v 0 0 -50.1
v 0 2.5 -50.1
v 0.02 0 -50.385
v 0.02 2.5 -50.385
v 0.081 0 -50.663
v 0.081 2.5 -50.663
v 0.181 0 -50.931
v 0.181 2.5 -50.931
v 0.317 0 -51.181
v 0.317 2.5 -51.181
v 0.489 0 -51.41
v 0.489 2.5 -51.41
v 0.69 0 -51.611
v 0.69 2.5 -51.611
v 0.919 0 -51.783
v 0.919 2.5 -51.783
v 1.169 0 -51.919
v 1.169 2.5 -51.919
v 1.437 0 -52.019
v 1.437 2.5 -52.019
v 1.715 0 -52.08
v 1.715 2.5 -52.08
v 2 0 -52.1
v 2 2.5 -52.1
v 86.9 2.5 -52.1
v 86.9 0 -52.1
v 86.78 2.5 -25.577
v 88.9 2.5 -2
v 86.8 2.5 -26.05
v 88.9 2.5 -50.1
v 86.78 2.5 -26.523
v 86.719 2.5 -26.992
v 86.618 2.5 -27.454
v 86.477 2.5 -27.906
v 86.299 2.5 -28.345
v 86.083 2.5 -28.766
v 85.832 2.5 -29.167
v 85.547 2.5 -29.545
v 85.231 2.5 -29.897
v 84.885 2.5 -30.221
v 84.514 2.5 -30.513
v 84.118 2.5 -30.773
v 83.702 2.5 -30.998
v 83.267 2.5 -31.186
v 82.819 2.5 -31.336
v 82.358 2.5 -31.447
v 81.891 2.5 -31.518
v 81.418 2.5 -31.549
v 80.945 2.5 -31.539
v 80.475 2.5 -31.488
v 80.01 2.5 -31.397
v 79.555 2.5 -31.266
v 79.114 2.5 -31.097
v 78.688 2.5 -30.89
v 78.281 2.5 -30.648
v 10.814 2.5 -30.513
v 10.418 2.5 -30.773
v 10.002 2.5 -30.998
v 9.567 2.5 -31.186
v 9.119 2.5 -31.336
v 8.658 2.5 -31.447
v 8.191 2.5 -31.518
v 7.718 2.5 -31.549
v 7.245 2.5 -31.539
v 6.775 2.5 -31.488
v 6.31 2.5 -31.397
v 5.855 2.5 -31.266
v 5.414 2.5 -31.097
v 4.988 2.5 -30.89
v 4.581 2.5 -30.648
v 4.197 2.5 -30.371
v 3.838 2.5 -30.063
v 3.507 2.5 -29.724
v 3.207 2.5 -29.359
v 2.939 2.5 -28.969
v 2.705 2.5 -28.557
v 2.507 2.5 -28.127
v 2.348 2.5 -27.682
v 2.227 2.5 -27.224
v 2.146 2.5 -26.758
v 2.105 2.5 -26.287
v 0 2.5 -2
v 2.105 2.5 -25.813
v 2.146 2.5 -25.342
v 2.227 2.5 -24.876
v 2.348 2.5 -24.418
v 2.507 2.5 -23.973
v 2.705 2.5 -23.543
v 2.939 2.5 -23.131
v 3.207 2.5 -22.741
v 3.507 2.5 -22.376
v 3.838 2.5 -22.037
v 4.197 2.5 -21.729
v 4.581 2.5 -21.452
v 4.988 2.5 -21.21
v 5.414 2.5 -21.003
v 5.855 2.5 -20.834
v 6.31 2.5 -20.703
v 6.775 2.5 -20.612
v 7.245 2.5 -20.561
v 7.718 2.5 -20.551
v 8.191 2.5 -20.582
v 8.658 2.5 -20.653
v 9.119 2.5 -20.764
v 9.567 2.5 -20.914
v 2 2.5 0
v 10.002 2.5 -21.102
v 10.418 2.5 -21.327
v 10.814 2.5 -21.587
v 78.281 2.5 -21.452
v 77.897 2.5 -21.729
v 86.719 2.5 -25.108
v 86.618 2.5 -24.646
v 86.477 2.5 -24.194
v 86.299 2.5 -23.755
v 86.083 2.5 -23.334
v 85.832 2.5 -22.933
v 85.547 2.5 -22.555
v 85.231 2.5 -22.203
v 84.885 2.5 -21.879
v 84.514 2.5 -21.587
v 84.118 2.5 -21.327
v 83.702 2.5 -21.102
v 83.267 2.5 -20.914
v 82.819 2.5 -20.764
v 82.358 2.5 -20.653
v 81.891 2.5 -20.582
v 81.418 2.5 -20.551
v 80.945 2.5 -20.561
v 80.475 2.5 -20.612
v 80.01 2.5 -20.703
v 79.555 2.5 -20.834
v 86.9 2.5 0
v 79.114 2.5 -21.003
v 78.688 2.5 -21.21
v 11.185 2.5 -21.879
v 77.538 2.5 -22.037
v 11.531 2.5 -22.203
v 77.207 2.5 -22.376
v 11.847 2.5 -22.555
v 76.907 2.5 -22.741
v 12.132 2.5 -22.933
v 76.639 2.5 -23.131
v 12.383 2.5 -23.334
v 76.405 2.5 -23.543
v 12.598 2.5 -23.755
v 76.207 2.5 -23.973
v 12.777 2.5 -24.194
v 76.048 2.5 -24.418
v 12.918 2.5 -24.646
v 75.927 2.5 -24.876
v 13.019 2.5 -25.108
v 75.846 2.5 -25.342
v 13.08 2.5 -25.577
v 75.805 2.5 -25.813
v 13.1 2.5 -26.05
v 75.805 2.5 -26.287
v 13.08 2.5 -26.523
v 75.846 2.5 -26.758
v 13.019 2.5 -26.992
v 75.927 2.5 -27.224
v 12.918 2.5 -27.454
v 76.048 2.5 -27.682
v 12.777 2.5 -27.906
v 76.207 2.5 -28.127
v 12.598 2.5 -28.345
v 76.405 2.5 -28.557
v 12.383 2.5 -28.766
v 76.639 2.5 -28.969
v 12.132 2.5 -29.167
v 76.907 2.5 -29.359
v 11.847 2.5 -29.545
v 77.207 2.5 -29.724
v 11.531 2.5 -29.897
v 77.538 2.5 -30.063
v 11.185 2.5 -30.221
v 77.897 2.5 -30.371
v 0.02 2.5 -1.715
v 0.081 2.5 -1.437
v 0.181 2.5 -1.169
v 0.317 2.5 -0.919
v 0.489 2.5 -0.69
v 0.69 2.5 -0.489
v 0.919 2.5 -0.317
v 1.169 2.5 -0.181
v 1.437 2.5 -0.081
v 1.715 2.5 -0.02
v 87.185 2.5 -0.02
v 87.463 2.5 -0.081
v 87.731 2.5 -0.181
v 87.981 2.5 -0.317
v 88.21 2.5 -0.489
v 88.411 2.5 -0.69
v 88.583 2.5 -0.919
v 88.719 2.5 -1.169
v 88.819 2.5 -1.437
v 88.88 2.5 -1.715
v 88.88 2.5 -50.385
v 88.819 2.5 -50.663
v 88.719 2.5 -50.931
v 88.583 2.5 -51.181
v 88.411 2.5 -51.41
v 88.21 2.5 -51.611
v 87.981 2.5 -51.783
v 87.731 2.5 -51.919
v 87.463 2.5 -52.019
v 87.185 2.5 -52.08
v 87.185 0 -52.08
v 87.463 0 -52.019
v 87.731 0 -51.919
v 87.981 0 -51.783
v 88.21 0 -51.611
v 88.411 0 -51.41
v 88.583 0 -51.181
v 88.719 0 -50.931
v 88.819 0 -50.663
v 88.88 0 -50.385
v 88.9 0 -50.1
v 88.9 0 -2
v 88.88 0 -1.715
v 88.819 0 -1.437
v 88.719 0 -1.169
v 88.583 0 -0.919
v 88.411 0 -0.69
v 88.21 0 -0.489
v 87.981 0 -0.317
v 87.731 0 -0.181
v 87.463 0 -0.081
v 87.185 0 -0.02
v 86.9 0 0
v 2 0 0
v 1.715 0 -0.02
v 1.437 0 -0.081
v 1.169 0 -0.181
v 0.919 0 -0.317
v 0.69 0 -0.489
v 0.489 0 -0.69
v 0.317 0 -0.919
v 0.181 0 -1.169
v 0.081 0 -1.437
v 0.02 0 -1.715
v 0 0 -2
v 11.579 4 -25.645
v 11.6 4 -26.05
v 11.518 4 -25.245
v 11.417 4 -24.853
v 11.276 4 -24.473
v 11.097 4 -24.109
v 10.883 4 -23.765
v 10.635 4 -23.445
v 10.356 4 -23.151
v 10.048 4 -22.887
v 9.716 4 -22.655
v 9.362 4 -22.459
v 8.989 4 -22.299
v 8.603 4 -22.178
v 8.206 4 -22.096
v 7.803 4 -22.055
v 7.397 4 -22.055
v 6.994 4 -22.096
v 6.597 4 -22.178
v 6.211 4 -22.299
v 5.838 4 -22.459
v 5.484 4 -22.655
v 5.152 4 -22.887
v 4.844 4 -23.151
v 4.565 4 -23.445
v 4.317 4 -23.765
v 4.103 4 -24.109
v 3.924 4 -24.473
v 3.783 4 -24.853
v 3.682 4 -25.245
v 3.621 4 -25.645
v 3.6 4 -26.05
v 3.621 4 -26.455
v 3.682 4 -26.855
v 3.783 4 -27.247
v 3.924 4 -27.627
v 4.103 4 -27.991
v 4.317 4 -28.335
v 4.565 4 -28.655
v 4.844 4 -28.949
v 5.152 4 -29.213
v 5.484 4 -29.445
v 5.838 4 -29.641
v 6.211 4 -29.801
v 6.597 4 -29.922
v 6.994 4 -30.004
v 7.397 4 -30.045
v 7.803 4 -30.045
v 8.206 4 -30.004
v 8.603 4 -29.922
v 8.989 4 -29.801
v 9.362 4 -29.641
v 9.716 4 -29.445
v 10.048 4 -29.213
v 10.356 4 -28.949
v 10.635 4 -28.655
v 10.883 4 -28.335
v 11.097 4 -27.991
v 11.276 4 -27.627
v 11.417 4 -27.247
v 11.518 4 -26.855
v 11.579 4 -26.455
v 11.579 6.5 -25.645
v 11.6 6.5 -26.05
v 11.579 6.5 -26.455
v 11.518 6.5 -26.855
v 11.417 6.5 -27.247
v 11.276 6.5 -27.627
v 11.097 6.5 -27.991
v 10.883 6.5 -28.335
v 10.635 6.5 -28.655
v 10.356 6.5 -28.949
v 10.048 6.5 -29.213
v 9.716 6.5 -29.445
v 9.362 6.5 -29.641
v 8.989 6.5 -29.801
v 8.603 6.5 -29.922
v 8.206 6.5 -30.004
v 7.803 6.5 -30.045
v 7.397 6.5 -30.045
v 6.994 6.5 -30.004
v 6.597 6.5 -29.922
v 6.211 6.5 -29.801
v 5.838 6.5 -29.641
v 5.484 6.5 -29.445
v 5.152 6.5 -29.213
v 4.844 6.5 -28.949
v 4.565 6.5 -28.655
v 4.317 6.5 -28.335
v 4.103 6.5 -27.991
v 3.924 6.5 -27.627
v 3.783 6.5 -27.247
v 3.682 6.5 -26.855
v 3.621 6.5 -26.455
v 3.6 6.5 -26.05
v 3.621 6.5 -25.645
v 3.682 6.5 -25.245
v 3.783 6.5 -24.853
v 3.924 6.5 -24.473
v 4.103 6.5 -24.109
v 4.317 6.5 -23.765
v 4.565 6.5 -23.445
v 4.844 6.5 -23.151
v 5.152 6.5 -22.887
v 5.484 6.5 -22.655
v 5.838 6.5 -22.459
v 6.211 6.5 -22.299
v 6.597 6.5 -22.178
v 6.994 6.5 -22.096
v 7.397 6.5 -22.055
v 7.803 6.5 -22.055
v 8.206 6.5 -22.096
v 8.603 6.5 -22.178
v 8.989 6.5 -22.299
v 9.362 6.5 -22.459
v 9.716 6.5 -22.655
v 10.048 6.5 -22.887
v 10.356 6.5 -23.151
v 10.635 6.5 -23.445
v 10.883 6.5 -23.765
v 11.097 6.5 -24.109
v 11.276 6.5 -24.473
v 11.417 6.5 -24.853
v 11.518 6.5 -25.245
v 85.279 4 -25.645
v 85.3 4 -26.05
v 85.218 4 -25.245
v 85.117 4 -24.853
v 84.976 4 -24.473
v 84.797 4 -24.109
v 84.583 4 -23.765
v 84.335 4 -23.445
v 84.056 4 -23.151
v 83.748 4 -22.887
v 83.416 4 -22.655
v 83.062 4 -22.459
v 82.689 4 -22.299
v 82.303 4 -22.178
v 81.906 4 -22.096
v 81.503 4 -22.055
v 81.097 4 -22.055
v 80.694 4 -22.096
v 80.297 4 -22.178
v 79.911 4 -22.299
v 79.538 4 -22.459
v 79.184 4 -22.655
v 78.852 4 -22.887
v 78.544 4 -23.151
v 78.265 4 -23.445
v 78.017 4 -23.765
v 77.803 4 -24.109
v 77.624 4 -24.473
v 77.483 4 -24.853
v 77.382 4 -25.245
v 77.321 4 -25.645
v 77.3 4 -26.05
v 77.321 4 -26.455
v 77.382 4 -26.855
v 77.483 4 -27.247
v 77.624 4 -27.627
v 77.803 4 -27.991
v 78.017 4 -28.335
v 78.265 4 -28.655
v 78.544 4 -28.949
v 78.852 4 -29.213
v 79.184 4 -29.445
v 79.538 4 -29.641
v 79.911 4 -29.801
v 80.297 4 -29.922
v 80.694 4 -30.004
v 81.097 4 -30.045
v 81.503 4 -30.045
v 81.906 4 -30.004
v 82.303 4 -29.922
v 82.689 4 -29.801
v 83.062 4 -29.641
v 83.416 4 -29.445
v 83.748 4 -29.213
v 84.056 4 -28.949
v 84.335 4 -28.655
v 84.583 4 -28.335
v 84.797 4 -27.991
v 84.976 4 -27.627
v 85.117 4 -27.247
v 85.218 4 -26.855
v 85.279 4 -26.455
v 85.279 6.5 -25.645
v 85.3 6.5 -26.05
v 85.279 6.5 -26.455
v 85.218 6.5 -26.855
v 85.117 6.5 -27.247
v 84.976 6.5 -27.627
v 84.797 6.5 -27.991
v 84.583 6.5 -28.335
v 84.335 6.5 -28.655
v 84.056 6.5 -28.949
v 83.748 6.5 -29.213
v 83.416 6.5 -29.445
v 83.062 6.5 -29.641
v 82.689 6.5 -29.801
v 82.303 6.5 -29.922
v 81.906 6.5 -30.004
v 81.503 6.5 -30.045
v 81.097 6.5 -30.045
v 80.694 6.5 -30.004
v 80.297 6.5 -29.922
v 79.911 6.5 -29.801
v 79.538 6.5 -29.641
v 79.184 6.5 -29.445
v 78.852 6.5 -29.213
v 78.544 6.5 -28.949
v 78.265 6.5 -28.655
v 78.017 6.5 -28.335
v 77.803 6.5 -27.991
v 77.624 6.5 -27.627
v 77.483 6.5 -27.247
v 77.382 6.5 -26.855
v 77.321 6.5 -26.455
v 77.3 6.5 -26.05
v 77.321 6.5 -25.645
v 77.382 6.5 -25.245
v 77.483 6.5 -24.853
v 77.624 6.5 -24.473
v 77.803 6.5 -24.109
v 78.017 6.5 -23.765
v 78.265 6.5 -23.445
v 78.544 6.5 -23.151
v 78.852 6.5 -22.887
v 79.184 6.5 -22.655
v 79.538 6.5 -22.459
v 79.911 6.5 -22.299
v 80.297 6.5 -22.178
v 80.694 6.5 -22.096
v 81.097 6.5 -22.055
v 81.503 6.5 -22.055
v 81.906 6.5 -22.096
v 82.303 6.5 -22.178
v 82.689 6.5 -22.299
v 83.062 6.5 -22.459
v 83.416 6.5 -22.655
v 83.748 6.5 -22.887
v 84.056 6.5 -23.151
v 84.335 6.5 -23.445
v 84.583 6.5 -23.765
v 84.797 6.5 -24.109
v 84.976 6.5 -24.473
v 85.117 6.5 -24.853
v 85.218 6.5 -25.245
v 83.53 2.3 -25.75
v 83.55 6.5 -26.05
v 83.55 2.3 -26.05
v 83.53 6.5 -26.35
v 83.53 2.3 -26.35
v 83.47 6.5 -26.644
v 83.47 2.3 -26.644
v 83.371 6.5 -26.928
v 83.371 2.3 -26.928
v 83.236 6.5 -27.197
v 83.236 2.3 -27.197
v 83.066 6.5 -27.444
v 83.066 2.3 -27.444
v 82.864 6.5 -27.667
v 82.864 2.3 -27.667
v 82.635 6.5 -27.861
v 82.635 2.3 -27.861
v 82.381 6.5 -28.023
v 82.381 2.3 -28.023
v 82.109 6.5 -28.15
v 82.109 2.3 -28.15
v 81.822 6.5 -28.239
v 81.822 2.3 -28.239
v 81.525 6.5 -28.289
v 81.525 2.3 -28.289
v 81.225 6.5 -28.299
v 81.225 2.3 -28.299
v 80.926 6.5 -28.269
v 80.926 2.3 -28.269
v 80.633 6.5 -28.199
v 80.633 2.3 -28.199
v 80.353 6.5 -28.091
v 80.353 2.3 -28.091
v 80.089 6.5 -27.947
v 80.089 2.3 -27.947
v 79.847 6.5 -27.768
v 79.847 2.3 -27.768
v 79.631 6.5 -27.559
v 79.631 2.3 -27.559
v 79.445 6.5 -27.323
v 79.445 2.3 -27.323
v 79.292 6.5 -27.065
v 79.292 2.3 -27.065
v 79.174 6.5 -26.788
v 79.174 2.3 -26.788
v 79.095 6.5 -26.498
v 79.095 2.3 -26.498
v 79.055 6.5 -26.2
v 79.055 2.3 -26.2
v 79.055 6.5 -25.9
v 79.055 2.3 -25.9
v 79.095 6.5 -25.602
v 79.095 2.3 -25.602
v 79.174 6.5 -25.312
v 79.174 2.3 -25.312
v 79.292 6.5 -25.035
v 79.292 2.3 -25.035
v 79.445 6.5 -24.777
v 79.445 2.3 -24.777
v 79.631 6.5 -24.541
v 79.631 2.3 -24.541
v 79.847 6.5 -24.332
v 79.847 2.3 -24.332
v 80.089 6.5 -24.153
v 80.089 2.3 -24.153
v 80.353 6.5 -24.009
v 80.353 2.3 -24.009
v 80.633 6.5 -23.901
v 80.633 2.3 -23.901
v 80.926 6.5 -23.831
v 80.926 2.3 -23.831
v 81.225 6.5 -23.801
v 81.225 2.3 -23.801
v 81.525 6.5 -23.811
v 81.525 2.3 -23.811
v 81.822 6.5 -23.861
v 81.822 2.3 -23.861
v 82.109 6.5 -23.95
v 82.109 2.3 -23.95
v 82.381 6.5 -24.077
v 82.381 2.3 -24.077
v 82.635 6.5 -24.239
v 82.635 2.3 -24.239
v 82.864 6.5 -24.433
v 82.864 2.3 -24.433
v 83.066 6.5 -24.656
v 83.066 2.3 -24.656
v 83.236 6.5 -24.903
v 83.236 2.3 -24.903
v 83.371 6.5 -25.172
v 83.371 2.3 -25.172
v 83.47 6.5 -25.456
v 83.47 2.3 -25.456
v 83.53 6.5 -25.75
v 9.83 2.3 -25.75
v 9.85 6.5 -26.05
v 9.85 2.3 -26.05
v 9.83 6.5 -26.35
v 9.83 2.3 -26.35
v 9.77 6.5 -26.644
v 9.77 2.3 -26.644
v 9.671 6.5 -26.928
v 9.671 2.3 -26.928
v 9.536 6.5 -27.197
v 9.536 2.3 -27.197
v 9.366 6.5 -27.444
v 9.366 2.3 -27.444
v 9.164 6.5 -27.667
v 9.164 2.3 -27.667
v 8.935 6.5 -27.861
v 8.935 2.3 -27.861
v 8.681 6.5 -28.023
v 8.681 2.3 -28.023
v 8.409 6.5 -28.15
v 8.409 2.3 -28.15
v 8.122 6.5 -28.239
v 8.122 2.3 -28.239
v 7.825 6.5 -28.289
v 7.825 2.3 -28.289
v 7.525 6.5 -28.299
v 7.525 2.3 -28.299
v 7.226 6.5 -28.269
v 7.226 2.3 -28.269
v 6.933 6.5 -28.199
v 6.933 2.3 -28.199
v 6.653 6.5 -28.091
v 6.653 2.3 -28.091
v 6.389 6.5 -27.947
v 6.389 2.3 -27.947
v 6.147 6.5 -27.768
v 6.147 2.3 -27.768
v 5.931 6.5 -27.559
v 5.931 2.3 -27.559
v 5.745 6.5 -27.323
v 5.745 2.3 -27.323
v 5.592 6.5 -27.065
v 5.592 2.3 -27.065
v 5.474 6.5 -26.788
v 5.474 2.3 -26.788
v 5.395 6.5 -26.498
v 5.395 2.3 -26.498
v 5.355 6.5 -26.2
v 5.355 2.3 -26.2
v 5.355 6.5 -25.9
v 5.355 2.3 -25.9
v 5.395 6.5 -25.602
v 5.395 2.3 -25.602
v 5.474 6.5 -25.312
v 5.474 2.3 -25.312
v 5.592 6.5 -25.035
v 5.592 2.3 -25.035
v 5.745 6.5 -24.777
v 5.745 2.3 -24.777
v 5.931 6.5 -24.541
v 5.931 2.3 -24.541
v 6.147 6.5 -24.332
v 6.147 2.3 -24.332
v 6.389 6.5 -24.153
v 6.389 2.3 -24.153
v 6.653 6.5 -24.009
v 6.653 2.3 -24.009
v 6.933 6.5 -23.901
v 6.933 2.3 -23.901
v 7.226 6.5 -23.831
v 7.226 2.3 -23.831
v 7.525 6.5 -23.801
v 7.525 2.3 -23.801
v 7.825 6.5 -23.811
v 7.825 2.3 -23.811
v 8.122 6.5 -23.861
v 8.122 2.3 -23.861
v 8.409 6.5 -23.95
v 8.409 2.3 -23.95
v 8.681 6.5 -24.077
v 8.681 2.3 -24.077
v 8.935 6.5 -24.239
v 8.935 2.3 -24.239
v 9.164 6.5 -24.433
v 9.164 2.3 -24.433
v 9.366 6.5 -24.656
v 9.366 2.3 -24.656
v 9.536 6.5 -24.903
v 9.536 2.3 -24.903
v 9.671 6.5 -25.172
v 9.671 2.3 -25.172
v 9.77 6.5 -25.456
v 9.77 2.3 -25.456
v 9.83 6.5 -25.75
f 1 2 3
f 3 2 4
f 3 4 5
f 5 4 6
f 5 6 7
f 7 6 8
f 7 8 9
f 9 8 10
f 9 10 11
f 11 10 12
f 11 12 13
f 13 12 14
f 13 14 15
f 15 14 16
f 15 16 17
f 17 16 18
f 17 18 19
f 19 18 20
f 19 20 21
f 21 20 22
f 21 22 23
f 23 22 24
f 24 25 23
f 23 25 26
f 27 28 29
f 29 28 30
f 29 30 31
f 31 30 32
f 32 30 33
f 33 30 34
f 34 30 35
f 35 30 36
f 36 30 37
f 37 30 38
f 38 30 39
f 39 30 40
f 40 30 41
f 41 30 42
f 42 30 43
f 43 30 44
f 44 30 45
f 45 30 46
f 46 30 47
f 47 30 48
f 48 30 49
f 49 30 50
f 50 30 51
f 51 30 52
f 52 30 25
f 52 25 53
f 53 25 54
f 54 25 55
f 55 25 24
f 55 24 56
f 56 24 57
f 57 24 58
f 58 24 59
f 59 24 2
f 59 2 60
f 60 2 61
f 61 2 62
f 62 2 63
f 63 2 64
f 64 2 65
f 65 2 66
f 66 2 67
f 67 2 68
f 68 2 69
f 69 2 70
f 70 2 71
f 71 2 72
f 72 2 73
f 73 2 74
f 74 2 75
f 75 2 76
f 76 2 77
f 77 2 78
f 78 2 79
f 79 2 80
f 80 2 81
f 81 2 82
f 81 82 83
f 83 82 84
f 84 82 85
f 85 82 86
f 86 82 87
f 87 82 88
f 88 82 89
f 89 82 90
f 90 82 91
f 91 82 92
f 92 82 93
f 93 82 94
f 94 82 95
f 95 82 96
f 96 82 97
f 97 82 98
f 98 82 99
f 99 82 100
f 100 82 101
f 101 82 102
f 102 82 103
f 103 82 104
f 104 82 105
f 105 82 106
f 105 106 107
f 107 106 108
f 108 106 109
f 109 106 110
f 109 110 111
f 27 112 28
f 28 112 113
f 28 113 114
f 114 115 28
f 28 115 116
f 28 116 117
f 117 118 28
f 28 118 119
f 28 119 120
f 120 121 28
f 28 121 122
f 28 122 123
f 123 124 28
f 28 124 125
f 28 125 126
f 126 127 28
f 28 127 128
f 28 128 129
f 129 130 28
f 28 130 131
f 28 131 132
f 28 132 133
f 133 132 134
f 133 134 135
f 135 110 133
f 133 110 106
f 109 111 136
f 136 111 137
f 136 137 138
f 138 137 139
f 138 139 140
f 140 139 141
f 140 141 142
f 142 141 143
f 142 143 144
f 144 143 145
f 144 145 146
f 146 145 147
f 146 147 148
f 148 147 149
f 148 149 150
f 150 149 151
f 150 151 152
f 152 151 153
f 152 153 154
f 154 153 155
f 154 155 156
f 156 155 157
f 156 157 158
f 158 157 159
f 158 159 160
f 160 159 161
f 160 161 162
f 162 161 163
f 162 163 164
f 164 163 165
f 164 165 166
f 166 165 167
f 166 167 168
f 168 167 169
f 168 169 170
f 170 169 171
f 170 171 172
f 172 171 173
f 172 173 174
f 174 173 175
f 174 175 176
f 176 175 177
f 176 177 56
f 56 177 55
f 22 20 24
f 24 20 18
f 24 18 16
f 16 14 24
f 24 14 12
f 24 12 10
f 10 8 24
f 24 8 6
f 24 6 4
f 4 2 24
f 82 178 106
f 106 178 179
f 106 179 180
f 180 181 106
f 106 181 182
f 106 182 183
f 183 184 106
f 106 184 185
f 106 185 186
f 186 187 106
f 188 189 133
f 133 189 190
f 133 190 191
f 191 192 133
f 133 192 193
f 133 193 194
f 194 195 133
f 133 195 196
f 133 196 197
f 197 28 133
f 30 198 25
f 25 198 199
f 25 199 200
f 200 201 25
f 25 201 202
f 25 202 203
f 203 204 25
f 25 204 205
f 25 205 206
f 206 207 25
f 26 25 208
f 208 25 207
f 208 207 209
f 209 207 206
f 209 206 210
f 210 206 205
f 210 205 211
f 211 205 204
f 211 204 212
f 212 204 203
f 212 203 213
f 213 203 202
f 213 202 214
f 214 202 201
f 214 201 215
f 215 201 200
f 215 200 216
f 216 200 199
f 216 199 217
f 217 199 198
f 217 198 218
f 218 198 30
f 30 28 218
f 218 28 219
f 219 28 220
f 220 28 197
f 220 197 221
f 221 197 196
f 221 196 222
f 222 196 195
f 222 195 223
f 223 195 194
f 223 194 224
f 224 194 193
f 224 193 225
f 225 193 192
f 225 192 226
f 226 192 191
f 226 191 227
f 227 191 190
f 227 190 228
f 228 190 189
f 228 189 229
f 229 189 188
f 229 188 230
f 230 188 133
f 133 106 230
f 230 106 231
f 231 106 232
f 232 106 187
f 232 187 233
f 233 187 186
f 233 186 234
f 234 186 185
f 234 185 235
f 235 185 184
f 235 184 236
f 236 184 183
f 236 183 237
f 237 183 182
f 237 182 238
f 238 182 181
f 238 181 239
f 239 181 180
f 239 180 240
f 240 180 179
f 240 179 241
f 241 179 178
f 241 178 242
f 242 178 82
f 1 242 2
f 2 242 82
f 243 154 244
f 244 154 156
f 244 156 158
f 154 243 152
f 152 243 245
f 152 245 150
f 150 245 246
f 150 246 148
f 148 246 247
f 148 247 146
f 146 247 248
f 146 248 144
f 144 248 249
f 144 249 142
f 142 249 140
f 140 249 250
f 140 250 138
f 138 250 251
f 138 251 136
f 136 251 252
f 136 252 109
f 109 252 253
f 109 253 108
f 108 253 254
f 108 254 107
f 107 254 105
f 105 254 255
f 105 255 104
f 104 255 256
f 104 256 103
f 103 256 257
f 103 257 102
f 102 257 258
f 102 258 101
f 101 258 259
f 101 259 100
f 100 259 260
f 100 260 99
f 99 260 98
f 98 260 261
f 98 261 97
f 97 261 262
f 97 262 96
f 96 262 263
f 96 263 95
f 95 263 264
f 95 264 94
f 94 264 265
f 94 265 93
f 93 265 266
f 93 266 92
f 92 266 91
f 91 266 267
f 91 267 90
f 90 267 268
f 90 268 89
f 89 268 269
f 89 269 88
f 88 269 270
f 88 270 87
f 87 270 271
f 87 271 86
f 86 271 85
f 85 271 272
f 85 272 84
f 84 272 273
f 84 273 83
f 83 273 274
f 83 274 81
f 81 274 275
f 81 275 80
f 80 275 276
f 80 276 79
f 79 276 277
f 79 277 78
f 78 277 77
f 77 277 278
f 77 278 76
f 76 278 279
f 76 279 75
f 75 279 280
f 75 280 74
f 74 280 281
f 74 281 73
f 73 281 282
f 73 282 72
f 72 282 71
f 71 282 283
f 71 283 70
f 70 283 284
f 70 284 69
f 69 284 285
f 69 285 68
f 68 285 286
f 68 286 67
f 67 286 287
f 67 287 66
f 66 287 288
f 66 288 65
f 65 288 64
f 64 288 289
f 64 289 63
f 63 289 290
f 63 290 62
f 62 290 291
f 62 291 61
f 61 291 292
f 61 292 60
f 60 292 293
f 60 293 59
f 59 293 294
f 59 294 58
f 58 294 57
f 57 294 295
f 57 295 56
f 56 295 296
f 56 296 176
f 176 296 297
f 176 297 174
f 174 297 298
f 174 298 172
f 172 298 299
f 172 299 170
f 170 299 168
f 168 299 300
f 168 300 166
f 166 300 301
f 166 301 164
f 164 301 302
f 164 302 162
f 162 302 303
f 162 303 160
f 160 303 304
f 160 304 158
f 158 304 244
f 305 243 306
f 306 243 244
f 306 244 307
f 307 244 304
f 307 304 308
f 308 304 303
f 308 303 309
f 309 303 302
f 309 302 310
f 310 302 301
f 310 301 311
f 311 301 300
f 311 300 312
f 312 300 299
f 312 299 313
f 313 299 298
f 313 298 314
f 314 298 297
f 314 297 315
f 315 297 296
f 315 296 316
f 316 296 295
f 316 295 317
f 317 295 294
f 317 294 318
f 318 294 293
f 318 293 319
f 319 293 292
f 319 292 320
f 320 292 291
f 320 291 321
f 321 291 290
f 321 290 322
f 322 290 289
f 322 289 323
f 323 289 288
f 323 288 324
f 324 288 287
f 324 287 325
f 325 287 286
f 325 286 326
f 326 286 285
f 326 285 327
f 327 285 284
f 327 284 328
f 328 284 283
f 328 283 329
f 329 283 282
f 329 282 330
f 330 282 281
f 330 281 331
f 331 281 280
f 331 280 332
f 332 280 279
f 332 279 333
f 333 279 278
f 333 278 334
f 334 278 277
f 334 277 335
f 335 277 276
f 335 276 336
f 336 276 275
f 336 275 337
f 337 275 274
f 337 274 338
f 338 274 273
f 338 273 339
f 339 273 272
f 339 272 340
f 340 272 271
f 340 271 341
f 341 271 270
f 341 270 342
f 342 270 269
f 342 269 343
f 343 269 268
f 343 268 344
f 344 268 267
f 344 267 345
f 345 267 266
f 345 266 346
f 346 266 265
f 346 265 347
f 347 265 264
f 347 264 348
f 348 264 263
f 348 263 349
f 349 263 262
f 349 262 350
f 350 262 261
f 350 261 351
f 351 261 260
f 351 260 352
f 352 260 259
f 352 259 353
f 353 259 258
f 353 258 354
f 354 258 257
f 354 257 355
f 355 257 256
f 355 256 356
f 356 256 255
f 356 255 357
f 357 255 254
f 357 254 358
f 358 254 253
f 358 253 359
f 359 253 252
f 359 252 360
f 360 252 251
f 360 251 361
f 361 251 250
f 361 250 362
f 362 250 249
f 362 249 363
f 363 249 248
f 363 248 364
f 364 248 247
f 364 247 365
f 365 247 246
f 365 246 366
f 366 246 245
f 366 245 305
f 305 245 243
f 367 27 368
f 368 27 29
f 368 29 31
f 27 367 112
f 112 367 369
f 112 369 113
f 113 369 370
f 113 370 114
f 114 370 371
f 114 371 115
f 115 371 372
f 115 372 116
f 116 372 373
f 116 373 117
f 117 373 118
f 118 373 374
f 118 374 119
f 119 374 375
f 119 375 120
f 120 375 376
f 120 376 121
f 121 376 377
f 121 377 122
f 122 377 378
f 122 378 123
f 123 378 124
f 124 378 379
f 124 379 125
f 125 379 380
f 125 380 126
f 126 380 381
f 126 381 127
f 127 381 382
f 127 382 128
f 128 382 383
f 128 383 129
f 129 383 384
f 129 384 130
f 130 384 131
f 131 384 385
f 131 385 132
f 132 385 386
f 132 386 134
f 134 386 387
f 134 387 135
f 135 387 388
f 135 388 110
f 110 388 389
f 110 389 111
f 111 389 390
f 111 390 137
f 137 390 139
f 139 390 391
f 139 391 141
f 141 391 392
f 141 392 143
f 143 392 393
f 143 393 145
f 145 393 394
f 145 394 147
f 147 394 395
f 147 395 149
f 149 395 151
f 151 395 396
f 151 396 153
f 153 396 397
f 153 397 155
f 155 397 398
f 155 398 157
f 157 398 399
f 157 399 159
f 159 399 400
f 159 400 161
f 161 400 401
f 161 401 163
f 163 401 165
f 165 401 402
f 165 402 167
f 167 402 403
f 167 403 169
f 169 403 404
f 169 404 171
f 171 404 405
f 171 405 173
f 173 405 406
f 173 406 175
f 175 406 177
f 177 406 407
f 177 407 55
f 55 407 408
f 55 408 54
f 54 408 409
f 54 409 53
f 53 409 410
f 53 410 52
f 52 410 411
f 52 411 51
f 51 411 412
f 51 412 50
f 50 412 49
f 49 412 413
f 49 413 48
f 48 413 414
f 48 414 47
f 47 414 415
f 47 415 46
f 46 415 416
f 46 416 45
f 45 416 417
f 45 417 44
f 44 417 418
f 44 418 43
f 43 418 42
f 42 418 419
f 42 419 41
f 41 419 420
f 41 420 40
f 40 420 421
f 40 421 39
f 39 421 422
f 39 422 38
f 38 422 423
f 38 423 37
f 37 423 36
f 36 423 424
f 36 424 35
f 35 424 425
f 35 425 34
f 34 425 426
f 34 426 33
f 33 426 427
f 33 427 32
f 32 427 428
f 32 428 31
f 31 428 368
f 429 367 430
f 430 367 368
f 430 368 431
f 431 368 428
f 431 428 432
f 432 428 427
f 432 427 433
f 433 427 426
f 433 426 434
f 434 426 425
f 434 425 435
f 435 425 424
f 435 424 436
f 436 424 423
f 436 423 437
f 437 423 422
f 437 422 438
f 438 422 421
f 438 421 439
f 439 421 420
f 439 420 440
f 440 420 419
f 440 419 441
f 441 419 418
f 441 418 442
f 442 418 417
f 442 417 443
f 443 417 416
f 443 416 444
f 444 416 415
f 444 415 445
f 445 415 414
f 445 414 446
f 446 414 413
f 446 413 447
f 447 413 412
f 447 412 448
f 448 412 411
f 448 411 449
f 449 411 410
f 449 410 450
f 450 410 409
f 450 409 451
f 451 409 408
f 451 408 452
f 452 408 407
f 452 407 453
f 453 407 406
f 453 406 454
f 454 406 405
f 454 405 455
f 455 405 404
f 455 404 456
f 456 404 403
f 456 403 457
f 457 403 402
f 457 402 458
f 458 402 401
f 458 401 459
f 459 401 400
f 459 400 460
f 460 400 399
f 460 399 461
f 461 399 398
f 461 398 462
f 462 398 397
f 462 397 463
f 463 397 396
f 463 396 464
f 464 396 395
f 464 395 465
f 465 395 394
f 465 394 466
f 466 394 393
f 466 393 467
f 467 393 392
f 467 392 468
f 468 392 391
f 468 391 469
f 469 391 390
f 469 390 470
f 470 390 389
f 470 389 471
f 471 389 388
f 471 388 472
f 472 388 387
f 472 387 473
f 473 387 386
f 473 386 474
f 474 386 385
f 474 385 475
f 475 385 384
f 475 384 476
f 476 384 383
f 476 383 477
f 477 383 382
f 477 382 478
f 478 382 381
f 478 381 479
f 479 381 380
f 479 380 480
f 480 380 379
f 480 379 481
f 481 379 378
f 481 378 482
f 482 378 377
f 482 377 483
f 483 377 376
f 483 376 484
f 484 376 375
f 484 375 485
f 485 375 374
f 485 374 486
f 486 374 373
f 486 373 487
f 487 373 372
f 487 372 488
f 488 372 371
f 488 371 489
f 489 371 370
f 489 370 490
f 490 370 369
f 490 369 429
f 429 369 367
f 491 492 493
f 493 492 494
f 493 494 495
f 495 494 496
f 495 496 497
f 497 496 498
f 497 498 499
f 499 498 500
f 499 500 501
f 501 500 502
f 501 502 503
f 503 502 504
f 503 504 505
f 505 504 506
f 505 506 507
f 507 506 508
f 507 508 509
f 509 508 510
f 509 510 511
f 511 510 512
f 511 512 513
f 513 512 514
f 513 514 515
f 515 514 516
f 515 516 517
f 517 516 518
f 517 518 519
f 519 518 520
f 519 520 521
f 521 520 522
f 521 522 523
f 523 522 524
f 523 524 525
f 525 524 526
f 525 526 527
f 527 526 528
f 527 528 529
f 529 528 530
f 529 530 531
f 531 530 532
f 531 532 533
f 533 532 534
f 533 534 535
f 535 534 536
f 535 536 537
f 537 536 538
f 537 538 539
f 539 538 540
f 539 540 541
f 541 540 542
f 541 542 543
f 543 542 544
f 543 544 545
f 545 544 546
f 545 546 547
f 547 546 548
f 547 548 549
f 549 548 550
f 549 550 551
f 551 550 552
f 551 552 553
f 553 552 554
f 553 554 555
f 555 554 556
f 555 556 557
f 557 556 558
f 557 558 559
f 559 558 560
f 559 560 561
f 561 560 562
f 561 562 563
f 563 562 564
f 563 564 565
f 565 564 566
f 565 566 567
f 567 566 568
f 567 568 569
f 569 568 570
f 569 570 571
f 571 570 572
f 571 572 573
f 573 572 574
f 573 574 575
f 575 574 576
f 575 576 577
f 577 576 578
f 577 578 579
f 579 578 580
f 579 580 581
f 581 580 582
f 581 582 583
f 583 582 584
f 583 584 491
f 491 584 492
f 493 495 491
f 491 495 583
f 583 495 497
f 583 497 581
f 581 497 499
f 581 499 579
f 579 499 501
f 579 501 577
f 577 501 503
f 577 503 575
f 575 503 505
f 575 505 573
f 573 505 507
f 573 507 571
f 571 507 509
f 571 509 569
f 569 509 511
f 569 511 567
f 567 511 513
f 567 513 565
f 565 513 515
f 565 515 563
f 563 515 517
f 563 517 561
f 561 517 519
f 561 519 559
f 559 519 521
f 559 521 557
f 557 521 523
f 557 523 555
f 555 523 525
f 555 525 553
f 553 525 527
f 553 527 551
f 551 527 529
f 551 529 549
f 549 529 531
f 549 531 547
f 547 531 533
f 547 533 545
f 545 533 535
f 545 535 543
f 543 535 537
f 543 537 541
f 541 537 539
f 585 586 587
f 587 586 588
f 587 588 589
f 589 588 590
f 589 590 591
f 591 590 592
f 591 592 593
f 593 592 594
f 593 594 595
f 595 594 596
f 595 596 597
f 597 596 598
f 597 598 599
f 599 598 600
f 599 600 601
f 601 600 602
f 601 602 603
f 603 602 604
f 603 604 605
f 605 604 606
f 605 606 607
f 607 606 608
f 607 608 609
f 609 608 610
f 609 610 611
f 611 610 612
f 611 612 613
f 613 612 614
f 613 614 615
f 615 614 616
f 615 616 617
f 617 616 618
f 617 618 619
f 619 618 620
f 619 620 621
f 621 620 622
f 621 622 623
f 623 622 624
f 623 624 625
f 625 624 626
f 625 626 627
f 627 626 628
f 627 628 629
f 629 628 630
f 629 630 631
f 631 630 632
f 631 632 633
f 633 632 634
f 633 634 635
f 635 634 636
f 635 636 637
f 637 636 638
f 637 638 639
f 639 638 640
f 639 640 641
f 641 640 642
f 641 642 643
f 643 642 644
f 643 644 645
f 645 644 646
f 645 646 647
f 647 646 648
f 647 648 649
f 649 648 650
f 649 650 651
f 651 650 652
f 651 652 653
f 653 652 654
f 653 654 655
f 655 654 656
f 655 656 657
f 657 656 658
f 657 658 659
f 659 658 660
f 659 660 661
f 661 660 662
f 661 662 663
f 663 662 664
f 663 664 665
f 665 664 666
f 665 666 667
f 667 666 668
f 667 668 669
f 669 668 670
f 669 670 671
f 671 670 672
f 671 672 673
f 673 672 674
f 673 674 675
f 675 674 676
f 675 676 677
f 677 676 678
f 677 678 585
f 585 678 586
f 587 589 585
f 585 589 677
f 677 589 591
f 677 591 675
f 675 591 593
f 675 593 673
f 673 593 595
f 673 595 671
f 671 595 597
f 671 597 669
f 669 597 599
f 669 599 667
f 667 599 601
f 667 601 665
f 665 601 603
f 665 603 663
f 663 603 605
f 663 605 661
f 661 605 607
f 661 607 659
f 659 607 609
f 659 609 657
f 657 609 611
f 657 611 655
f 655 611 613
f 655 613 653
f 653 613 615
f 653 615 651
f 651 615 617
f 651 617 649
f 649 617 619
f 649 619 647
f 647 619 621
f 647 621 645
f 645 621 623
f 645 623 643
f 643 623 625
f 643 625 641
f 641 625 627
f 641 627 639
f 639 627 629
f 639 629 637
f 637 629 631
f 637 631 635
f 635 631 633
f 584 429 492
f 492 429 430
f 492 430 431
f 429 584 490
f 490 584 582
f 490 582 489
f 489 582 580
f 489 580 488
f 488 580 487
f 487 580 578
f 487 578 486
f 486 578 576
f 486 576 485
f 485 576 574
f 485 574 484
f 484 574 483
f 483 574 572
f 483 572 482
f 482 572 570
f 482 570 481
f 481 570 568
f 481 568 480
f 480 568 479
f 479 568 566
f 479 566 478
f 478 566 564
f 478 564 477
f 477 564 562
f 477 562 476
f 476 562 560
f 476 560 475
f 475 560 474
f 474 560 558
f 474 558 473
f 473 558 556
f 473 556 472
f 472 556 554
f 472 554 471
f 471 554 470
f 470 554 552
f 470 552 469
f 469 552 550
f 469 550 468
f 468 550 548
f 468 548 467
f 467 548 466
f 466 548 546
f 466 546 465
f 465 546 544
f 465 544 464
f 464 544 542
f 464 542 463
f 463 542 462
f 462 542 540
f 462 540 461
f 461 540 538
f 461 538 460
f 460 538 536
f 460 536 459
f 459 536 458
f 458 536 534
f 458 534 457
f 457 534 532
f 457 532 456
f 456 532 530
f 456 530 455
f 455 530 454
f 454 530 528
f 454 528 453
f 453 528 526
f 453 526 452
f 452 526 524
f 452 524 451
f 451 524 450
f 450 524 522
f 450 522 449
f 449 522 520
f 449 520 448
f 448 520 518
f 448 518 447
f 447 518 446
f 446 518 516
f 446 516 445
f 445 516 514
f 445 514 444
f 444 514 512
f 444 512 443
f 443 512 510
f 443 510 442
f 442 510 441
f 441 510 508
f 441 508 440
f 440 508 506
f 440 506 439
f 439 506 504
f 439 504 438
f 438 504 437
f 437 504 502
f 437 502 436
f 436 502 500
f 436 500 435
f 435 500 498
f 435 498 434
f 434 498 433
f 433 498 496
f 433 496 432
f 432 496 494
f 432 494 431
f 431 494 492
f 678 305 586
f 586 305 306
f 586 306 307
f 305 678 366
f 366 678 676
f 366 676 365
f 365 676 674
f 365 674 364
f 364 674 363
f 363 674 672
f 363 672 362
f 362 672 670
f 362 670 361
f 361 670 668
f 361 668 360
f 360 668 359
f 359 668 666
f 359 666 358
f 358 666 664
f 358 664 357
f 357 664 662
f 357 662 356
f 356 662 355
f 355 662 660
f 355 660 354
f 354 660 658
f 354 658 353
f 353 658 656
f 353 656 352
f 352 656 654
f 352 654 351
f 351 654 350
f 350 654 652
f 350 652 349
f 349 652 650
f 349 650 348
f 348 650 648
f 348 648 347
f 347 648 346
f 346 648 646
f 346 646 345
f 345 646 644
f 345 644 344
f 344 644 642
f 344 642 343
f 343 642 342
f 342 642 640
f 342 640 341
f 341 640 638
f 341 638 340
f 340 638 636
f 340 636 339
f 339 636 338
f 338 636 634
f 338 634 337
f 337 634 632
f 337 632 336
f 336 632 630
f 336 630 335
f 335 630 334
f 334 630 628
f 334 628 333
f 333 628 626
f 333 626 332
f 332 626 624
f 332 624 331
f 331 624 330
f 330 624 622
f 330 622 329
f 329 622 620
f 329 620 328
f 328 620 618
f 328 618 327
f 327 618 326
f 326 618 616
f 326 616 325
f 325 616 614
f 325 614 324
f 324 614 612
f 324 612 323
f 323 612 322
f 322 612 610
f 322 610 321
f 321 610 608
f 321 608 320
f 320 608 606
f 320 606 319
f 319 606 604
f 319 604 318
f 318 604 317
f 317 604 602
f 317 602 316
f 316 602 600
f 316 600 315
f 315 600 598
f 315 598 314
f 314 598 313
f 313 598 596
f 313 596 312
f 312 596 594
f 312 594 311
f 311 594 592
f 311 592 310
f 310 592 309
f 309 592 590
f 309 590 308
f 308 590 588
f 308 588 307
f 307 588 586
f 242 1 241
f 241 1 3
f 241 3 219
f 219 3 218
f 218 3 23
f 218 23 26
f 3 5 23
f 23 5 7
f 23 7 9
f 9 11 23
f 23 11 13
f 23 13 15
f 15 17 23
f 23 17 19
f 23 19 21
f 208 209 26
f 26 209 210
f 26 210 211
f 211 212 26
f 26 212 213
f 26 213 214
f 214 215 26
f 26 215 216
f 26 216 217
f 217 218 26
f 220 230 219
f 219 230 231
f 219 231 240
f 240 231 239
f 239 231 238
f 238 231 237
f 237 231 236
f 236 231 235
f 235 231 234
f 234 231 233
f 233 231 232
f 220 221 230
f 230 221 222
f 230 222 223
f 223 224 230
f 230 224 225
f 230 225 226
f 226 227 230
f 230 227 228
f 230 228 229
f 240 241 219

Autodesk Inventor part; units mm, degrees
ref_plane "YZ Plane" through (0, 0, 0) normal (1, 0, 0) x (0, 1, 0)
ref_plane "XZ Plane" through (0, 0, 0) normal (0, 1, 0) x (-1, 0, 0)
ref_plane "XY Plane" through (0, 0, 0) normal (0, 0, 1) x (1, 0, 0)
sketch "Sketch1" plane through (0, 0, 0) normal (0, 1, 0) x (-1, 0, 0)
  line L0 (0, 0) -> (-88.9, 0)
  line L1 (-88.9, 0) -> (-88.9, -52.1)
  line L2 (-88.9, -52.1) -> (0, -52.1)
  line L3 (0, -52.1) -> (0, 0)
  dimension "d0" = 88.9
  dimension "d1" = 52.1
extrude "Extrusion1" add sketch "Sketch1" along normal blind 2.5
sketch "Sketch2" plane through (0, 2.5, 0) normal (0, 1, 0) x (1, 0, 0)
  circle A0 centre (7.6, 26.05) radius 4
  circle A1 centre (81.3, 26.05) radius 4
  line L0 (0, 52.1) -> (0, 0) projected
  line L1 (88.9, 0) -> (88.9, 52.1) projected
  line L2 (88.9, 52.1) -> (0, 52.1) projected
  dimension "d4" = 8
  dimension "d5" = 8
  dimension "d6" = 7.6
  dimension "d7" = 7.6
  dimension "d8" = 26.05
  dimension "d9" = 26.05
extrude "Extrusion2" add sketch "Sketch2" along normal blind 4
sketch "Sketch3" plane through (7.6, 6.5, -26.05) normal (0, 1, 0) x (1, 0, 0)
  circle A0 centre (0, 0) radius 4 projected
  circle A1 centre (73.7, 0) radius 4 projected
  circle A2 centre (0, 0) radius 2.25
  circle A3 centre (73.7, 0) radius 2.25
  point P0 (-7.6, -26.05)
  dimension "d12" = 4.5
  dimension "d13" = 4.5
extrude "Extrusion3" cut sketch "Sketch3" against normal blind 4.2 contours A2 | A3
chamfer "Chamfer1" distance 1.5 angle 45 2 edges at (77.3, 2.5, -26.05) (3.6, 2.5, -26.05)
fillet "Fillet1" radius 2 4 edges at (0, 1.25, 0) (88.9, 1.25, 0) (88.9, 1.25, -52.1) (0, 1.25, -52.1)
properties part number "medium_backplate"
